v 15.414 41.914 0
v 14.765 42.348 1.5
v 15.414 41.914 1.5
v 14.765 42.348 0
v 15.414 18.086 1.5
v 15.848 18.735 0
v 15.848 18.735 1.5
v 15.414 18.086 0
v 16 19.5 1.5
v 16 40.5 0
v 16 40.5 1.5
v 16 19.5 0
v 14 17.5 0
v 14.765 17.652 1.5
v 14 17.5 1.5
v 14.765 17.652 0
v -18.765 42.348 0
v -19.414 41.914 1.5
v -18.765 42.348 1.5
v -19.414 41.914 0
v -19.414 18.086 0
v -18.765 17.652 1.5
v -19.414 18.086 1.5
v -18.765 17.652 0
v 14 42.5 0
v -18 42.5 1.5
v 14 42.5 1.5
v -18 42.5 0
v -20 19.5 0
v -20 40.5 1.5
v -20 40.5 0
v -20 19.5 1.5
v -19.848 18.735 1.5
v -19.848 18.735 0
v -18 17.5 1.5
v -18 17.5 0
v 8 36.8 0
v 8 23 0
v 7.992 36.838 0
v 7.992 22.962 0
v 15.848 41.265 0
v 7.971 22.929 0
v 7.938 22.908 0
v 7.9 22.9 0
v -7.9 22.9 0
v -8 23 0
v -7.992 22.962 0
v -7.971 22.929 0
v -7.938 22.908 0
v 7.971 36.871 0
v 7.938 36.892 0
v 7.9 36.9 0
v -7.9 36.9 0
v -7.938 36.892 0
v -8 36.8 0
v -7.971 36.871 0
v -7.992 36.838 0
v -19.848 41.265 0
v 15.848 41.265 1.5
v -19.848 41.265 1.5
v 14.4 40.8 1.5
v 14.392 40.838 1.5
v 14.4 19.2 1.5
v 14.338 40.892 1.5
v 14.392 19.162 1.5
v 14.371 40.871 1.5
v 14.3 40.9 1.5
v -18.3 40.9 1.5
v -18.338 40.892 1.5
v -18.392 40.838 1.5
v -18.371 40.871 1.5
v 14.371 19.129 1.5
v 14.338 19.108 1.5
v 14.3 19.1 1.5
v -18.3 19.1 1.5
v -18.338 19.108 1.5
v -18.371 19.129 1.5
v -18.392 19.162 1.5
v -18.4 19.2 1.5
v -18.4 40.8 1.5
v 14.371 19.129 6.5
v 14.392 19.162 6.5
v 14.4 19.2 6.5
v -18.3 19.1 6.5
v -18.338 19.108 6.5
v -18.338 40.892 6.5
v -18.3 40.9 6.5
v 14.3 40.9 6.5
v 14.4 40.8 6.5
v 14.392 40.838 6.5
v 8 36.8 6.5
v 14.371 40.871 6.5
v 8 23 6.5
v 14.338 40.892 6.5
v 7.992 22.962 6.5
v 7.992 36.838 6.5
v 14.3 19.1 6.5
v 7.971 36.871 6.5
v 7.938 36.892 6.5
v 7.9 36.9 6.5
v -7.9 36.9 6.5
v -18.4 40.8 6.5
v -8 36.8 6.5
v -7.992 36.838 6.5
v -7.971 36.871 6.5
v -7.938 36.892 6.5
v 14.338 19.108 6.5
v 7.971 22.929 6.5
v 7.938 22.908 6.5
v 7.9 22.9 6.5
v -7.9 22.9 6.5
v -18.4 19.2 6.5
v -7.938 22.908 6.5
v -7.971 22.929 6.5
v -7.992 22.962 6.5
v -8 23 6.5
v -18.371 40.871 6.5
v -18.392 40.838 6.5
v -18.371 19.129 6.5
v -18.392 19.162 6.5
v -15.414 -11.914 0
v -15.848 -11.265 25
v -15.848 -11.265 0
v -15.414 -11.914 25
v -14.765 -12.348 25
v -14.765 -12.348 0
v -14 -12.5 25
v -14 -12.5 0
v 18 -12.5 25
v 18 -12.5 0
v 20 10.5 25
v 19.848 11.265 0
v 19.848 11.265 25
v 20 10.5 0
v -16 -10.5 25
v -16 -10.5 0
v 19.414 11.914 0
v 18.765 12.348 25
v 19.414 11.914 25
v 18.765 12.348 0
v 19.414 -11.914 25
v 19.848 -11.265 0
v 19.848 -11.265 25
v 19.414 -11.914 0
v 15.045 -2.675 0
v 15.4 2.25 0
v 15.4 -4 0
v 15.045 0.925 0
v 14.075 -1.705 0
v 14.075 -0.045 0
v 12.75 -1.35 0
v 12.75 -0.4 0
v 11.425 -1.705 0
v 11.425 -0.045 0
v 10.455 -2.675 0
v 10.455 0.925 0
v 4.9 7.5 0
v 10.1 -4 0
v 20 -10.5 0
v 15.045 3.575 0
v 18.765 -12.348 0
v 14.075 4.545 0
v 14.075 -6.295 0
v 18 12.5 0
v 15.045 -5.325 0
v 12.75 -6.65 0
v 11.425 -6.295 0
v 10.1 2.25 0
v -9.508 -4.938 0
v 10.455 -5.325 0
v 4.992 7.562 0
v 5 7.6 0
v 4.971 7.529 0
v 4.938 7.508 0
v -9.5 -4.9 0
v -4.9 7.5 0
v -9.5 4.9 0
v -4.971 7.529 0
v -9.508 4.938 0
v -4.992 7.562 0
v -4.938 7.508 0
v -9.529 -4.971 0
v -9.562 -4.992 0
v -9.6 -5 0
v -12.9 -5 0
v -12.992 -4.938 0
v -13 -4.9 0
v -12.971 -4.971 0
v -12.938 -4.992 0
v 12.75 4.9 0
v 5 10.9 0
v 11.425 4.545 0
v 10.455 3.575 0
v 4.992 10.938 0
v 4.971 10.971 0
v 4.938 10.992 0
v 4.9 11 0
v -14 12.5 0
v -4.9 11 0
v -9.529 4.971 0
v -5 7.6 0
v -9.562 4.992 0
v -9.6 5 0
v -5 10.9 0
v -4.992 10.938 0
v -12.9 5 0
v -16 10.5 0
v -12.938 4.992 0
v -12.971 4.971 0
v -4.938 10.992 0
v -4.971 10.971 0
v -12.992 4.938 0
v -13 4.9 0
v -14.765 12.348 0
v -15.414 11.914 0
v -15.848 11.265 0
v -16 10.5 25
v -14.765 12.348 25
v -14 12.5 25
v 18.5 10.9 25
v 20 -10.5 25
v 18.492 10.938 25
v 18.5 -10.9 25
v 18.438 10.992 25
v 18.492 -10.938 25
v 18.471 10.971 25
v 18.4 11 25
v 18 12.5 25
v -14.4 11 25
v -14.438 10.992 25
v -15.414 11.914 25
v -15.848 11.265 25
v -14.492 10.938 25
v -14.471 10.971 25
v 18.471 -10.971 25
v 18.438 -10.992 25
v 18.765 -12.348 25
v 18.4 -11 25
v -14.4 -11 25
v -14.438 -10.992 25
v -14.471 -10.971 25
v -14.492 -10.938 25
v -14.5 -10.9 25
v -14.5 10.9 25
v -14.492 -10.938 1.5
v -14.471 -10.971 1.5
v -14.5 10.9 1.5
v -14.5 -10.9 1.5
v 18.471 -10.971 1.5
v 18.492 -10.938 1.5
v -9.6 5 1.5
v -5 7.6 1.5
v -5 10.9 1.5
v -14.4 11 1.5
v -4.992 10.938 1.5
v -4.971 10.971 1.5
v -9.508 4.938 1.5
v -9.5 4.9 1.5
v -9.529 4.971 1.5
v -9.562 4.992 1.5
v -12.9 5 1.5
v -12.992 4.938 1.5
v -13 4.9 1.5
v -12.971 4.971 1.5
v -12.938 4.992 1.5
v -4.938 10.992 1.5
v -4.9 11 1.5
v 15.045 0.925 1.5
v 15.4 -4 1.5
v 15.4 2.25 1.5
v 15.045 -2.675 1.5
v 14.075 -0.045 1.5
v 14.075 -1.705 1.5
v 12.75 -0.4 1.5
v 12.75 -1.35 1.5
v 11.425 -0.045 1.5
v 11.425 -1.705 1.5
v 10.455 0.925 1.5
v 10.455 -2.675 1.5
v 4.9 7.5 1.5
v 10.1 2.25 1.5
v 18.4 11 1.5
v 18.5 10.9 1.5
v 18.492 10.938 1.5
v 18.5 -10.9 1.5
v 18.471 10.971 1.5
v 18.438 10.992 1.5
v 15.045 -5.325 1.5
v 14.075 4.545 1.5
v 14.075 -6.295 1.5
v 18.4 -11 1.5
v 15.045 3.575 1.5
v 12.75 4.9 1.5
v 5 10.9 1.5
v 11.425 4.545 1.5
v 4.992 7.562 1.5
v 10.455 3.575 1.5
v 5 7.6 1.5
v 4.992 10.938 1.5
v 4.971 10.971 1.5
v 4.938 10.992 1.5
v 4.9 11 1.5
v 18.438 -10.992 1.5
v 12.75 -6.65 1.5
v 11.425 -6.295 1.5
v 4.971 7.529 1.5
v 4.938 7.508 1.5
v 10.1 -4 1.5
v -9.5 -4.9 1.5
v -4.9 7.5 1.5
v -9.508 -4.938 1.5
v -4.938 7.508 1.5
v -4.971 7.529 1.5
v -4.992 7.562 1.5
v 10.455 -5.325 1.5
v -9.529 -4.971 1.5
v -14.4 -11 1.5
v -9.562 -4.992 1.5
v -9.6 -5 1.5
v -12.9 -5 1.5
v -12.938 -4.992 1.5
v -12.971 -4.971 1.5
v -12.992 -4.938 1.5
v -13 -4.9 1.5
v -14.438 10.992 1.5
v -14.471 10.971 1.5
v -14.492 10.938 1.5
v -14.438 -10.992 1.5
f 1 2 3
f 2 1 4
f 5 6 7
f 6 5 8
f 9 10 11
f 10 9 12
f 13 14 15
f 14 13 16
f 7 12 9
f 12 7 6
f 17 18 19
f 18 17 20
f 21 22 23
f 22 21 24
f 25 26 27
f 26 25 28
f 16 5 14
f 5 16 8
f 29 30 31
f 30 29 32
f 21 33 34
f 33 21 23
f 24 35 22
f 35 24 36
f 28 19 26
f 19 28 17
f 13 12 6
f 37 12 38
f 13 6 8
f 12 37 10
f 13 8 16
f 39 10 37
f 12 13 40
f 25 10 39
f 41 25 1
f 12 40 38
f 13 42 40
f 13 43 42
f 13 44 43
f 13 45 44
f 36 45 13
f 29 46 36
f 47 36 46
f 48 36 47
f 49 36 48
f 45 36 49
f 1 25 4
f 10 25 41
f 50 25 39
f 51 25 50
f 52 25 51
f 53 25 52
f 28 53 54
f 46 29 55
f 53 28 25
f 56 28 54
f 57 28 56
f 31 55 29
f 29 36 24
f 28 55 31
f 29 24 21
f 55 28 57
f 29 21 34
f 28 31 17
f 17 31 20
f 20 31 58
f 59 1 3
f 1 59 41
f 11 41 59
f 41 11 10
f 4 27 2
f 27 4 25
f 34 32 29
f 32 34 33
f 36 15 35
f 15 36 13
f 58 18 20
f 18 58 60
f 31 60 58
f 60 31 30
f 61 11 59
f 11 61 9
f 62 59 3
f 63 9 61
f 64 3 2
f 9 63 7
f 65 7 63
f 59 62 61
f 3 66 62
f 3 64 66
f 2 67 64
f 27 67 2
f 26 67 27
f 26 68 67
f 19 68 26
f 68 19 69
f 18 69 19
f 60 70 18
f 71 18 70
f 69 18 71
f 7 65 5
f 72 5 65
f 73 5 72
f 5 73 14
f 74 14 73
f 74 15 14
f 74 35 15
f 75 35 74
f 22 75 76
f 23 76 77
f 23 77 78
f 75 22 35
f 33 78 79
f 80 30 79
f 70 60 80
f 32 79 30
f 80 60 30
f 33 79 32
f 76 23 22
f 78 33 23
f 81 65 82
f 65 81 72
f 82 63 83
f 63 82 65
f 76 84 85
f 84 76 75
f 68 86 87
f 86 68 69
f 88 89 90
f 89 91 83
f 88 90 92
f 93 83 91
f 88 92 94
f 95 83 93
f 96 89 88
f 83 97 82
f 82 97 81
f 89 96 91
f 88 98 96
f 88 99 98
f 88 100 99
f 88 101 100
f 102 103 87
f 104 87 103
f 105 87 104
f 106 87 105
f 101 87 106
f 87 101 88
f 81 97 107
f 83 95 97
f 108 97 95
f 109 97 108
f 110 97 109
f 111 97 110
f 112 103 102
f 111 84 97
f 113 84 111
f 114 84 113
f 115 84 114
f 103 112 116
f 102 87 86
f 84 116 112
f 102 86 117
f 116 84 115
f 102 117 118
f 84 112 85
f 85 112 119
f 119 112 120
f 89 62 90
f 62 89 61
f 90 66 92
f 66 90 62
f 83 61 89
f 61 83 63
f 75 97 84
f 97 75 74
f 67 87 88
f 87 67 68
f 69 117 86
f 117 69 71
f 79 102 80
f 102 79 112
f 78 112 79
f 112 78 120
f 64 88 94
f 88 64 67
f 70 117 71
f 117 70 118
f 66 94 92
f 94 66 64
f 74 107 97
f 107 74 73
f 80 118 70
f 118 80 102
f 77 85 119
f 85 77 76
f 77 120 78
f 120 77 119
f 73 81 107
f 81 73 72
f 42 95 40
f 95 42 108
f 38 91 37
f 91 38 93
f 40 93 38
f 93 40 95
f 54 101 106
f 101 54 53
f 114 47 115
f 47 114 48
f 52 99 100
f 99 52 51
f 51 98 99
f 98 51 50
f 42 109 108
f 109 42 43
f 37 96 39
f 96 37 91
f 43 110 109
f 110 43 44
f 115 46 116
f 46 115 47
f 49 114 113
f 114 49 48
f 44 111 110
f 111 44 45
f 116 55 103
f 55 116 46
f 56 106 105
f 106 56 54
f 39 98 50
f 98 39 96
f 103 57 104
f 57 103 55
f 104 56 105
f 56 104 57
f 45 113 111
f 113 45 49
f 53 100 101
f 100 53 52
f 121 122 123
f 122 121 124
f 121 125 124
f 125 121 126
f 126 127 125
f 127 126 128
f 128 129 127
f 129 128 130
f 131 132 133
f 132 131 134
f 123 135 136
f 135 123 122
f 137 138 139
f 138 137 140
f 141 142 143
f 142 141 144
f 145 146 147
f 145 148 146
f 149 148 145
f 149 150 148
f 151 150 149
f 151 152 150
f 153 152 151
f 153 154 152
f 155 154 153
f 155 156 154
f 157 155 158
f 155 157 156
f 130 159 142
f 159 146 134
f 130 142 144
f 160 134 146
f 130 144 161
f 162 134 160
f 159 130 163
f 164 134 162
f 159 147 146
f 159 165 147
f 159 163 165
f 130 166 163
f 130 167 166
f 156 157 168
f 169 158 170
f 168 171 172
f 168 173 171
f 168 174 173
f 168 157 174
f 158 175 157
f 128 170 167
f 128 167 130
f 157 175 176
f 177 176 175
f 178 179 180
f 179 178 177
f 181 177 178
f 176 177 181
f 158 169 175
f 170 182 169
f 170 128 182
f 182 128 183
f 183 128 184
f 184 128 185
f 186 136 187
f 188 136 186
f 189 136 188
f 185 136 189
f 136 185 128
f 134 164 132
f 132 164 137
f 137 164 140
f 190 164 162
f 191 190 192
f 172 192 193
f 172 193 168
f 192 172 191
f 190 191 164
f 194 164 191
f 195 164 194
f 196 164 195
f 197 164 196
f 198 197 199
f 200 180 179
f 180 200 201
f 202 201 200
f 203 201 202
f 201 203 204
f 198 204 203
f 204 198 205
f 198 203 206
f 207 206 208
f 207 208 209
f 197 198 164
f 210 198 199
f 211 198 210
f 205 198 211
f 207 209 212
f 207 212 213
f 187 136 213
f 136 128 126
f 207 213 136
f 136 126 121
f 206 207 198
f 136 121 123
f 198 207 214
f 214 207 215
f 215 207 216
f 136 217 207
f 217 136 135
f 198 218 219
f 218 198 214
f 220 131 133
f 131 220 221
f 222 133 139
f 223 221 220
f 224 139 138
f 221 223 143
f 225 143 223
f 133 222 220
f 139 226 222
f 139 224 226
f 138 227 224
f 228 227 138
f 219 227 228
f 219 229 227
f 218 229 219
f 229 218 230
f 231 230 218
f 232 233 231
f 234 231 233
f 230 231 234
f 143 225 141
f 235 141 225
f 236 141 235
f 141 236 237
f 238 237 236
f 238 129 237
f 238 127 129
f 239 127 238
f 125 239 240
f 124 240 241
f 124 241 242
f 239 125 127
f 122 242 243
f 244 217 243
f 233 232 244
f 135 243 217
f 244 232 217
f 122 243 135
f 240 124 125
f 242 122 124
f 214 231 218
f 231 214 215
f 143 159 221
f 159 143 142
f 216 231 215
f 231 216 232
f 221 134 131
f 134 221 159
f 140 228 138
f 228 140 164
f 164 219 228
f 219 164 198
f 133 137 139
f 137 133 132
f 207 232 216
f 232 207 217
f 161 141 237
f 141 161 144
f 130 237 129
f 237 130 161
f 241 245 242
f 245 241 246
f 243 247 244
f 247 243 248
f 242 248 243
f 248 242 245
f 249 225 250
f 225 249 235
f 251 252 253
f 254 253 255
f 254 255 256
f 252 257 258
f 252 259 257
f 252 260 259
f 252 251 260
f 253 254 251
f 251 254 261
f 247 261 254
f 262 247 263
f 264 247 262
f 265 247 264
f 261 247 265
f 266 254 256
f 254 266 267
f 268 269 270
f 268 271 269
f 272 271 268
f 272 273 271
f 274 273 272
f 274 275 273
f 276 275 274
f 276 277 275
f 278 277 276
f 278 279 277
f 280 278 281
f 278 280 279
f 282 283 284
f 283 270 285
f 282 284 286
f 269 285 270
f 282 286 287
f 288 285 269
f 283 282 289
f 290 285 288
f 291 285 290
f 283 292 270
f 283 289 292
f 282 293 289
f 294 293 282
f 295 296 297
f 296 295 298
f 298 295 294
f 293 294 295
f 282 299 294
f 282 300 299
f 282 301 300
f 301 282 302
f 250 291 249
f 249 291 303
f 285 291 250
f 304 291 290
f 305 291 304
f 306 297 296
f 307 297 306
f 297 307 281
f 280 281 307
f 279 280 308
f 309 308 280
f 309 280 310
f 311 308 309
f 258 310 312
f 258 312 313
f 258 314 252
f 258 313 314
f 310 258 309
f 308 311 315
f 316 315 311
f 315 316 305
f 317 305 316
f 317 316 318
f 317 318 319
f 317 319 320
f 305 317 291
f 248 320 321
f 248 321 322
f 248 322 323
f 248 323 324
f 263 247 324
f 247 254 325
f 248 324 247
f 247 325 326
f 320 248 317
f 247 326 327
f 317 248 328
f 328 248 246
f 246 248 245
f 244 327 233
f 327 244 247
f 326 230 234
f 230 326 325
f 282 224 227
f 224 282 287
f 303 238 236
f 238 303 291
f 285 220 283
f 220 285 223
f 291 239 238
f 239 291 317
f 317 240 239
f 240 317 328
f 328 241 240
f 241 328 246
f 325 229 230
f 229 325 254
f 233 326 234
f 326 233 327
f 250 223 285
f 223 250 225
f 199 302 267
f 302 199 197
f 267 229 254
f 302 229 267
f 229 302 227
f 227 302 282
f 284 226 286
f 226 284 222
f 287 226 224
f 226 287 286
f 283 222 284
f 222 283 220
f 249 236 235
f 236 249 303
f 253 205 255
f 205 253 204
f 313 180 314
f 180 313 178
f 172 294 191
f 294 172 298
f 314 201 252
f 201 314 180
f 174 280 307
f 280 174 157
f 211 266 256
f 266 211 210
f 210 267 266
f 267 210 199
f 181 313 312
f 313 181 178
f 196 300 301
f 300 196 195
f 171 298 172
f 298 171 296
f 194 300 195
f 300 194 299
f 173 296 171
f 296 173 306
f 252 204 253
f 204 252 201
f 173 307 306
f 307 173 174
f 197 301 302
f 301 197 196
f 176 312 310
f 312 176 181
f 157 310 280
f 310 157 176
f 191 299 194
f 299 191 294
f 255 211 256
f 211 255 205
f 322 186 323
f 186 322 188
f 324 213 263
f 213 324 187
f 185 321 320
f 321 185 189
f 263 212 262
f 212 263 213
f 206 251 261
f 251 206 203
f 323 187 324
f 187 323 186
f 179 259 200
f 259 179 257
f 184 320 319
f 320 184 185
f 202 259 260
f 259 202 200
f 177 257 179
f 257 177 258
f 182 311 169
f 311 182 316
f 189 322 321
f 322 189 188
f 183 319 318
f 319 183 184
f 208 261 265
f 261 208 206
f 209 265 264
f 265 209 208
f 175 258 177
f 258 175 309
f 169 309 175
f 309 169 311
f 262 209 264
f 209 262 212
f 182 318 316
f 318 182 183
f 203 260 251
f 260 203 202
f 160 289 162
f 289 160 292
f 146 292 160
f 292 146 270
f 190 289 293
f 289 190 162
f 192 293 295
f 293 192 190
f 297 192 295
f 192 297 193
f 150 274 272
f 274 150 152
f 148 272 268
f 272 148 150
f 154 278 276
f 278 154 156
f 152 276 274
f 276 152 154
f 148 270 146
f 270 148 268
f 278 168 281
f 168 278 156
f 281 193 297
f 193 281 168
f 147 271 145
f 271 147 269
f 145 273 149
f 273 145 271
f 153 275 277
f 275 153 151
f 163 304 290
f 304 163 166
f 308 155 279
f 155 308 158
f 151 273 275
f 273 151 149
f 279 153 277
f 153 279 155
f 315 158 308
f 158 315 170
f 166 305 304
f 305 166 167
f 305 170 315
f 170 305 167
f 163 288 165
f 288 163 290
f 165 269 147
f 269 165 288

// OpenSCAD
wC=30;  // width oft the combined connectors
dC=23.5; //depth of the combined connectors
hC=22; //height of the cobined connectors
oC=2; //offset off the connectors

wE=16; //width of the rj45 connector
hE=14; //height of the rj45 connector

lsT=1.5; //lid left right support
wT=1.5;  //wall thickness
wI=wC+lsT*2; //width inside
wO=wI+wT*2; //width outside

dI=dC;  //depth inside
dO=dI+wT; //depth outside

hI=hC;  //height inside
hO=hI+wT*2; //height outside

wU=10;  //width of the usb-c connector
hU=3.5;  //height of the usc-c connector

eR=2; //edge radius
t=0.2; //tolerance of the lid
lD=5; //depth of the lid

sW=9.5;

base();
translate([0,30,wT+dO])rotate([0,180,0])lid();

module lid(){
  translate([0,0,dO]){  
    difference(){
      translate([oC,0,0]){
        rcube([wO,hO,wT],eR);
        translate([0,0,-lD])rcube([wI-t,hI-t,lD],0.1);
      }
      translate([0,hI/2-hE/2-hU-0.6,-6])rcube([wE,hE,10],0.1);
    }
  }
}

module base(){
  difference(){
    
    translate([oC,0,0])rcube([wO,hO,dO],eR);
    translate([oC,0,wT])rcube([wI,hI,dI+1],0.1);
    translate([0,hI/2-hU/2,-1])rcube([wU,hU,wT+2],0.1);
    translate([-(wI/2-hU/2-oC-lsT),0,-1])rcube([hU,wU,wT+2],0.1);
    translate([(wE+sW)/2,hI/2-8.75,-1])cylinder(d=5.3,h=10,$fn=12);
    translate([(wE+sW)/2,hI/2-15,-1])cylinder(d=5.3,h=10,$fn=12);
  }
}




module rcube(size,radius){
  $fn=16;
linear_extrude(height=size[2])
if(radius>0){
hull()
{
    // place 4 circles in the corners, with the given radius
    translate([(-size[0]/2)+(radius), (-size[1]/2)+(radius), 0])
    circle(r=radius);

    translate([(size[0]/2)-(radius), (-size[1]/2)+(radius), 0])
    circle(r=radius);

    translate([(-size[0]/2)+(radius), (size[1]/2)-(radius), 0])
    circle(r=radius);

    translate([(size[0]/2)-(radius), (size[1]/2)-(radius), 0])
    circle(r=radius);
}
}
if(radius==0){
translate([0,0,size[2]/2])cube(size,center=true);
}
}
